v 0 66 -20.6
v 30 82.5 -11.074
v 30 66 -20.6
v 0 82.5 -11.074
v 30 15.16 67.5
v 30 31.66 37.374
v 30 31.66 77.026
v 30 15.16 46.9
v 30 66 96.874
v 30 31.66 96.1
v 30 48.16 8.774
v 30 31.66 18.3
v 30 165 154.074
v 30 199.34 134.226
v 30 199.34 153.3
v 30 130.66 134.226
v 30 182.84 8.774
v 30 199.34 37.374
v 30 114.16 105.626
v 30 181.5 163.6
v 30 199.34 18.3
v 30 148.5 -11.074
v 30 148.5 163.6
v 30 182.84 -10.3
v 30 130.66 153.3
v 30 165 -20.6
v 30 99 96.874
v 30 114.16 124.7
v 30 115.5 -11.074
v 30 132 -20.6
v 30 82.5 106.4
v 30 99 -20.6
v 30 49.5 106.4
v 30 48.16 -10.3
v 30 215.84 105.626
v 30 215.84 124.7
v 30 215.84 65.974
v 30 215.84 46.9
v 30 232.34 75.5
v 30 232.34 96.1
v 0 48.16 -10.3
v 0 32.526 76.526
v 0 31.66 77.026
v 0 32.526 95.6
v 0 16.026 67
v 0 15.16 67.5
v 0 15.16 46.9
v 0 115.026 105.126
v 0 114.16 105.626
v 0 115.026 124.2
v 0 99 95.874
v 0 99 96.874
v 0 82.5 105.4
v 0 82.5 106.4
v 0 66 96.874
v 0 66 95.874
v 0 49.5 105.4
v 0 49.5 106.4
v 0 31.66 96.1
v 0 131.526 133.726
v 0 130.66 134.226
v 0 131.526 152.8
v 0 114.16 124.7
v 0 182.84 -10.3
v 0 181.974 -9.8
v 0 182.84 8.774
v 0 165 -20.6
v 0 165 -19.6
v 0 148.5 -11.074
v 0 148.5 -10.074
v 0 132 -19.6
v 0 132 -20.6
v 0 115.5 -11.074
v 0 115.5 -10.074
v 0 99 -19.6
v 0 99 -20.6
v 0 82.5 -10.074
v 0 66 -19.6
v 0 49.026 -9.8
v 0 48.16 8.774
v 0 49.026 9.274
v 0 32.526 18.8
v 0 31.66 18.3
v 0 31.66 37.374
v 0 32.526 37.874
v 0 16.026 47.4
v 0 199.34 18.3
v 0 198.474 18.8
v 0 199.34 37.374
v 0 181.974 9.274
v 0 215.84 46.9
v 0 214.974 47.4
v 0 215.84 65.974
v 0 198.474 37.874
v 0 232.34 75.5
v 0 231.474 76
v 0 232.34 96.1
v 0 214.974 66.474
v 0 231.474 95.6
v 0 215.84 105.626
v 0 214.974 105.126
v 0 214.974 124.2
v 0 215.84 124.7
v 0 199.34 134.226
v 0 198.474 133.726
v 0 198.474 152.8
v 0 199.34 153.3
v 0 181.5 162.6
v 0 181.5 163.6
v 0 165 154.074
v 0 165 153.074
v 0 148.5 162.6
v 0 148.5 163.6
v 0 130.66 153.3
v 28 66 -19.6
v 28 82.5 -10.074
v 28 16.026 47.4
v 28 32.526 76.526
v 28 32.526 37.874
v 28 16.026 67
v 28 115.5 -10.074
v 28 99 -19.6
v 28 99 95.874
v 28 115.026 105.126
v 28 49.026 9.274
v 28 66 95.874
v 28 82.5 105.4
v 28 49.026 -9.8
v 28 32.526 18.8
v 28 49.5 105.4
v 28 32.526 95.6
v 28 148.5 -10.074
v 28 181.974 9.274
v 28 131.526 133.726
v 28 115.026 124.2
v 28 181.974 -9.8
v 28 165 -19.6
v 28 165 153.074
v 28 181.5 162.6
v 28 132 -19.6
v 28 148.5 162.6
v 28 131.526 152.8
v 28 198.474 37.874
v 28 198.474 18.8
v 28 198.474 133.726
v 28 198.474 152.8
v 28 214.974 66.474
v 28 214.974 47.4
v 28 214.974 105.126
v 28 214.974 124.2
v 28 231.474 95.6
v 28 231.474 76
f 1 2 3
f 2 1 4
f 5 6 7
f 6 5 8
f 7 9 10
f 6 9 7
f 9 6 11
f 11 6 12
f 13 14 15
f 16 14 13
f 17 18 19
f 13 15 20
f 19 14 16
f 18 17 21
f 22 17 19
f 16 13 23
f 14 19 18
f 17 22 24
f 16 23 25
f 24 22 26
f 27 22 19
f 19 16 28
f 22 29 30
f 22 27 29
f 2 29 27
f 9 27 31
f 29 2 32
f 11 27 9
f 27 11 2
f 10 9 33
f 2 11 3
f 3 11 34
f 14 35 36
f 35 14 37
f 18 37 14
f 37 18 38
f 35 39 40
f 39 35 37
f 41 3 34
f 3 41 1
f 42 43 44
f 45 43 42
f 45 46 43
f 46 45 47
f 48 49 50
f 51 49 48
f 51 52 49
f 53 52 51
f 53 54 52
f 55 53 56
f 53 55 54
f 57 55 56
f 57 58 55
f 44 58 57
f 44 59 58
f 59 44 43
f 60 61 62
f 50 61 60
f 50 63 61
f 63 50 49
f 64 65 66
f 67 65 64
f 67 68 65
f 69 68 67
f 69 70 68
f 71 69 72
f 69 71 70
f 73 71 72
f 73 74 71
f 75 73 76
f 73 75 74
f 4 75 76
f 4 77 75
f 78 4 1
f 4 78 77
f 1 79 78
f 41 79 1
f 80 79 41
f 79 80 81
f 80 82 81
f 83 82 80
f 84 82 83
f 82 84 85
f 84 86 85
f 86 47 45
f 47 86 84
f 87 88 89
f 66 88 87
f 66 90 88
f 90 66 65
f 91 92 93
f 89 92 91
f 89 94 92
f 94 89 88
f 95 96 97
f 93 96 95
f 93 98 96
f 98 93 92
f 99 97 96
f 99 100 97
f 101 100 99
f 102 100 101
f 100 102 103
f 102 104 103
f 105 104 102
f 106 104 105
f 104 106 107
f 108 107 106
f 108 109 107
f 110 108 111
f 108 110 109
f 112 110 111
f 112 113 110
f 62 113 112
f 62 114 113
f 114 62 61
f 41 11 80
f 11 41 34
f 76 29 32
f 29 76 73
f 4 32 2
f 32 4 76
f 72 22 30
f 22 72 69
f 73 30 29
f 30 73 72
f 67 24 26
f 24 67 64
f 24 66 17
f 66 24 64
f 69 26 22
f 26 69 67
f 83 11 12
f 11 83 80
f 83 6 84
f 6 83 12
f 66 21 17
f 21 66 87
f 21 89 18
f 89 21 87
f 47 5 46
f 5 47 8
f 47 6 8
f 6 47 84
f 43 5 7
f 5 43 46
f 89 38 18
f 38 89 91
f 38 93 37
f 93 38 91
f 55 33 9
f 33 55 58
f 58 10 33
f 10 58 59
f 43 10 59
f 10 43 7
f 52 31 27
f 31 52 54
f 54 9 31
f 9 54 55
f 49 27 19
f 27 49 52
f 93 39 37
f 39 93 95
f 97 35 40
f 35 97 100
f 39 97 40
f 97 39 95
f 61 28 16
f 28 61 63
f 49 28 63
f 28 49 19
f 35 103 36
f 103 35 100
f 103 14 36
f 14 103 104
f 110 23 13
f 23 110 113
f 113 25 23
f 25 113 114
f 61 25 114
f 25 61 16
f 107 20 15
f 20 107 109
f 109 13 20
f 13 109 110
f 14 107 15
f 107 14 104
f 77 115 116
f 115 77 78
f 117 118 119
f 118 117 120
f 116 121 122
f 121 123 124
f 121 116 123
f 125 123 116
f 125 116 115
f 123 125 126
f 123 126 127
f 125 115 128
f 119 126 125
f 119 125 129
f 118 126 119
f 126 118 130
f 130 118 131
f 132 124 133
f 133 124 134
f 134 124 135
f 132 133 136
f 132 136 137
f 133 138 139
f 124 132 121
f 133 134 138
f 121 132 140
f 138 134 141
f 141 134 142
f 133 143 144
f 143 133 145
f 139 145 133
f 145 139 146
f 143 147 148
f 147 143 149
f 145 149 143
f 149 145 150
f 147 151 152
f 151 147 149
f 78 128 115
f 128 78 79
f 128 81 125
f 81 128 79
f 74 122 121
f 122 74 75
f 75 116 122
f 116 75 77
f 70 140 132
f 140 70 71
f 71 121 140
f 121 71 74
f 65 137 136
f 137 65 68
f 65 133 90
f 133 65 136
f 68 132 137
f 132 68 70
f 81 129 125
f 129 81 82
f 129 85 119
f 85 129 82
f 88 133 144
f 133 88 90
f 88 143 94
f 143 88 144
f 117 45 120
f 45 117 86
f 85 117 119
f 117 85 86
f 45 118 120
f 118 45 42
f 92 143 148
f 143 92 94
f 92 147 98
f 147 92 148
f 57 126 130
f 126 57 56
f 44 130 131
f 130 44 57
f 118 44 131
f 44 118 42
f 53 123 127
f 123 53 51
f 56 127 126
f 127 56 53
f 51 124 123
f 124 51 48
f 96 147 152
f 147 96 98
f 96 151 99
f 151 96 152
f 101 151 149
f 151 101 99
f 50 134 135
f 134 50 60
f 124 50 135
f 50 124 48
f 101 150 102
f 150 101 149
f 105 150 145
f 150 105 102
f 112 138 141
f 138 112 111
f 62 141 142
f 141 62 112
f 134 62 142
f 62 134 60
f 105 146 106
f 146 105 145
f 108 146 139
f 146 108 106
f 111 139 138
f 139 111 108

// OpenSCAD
$fn=200;

// radius for hex
br=18.8;

// height for hex
bh=10;
bhh=0.9;

// Distance between 2 hexes
dist=33;
offx=32;
offy=24;
board();
extra=1;
extrah=10;

module draw_heart(height, radius) {
    draw_line_extra(0,2, 5, height, radius);
    draw_line_extra(1,1,5, height, radius);
    draw_line_extra(2,1,6, height, radius);
    draw_line_extra(3,1,6, height, radius);
    draw_line_extra(4,4,6, height, radius);
    draw_line_extra(5,4,5, height, radius);
}

module draw_line(j, start, end) {
    for ( i = [start : end] ){
        translate([0,i*dist+(dist/2*(j%2)),j*28.6]) rotate([0,90,0]) {
            cylinder(r=br+0.4,h=bhh, $fn=6);
        }
    }
}

module draw_line_extra(j, start, end, height, radius) {
    for ( i = [start : end] ){
        translate([0,i*dist+(dist/2*(j%2)),j*28.6]) rotate([0,90,0]) {
            cylinder(r=radius,h=height, $fn=6);
        }
    }
}


module board() {
    difference() {
        draw_heart(30, br+0.8+1);
        translate([-1,0,0]) draw_heart(29, br+0.8);
    }
}
